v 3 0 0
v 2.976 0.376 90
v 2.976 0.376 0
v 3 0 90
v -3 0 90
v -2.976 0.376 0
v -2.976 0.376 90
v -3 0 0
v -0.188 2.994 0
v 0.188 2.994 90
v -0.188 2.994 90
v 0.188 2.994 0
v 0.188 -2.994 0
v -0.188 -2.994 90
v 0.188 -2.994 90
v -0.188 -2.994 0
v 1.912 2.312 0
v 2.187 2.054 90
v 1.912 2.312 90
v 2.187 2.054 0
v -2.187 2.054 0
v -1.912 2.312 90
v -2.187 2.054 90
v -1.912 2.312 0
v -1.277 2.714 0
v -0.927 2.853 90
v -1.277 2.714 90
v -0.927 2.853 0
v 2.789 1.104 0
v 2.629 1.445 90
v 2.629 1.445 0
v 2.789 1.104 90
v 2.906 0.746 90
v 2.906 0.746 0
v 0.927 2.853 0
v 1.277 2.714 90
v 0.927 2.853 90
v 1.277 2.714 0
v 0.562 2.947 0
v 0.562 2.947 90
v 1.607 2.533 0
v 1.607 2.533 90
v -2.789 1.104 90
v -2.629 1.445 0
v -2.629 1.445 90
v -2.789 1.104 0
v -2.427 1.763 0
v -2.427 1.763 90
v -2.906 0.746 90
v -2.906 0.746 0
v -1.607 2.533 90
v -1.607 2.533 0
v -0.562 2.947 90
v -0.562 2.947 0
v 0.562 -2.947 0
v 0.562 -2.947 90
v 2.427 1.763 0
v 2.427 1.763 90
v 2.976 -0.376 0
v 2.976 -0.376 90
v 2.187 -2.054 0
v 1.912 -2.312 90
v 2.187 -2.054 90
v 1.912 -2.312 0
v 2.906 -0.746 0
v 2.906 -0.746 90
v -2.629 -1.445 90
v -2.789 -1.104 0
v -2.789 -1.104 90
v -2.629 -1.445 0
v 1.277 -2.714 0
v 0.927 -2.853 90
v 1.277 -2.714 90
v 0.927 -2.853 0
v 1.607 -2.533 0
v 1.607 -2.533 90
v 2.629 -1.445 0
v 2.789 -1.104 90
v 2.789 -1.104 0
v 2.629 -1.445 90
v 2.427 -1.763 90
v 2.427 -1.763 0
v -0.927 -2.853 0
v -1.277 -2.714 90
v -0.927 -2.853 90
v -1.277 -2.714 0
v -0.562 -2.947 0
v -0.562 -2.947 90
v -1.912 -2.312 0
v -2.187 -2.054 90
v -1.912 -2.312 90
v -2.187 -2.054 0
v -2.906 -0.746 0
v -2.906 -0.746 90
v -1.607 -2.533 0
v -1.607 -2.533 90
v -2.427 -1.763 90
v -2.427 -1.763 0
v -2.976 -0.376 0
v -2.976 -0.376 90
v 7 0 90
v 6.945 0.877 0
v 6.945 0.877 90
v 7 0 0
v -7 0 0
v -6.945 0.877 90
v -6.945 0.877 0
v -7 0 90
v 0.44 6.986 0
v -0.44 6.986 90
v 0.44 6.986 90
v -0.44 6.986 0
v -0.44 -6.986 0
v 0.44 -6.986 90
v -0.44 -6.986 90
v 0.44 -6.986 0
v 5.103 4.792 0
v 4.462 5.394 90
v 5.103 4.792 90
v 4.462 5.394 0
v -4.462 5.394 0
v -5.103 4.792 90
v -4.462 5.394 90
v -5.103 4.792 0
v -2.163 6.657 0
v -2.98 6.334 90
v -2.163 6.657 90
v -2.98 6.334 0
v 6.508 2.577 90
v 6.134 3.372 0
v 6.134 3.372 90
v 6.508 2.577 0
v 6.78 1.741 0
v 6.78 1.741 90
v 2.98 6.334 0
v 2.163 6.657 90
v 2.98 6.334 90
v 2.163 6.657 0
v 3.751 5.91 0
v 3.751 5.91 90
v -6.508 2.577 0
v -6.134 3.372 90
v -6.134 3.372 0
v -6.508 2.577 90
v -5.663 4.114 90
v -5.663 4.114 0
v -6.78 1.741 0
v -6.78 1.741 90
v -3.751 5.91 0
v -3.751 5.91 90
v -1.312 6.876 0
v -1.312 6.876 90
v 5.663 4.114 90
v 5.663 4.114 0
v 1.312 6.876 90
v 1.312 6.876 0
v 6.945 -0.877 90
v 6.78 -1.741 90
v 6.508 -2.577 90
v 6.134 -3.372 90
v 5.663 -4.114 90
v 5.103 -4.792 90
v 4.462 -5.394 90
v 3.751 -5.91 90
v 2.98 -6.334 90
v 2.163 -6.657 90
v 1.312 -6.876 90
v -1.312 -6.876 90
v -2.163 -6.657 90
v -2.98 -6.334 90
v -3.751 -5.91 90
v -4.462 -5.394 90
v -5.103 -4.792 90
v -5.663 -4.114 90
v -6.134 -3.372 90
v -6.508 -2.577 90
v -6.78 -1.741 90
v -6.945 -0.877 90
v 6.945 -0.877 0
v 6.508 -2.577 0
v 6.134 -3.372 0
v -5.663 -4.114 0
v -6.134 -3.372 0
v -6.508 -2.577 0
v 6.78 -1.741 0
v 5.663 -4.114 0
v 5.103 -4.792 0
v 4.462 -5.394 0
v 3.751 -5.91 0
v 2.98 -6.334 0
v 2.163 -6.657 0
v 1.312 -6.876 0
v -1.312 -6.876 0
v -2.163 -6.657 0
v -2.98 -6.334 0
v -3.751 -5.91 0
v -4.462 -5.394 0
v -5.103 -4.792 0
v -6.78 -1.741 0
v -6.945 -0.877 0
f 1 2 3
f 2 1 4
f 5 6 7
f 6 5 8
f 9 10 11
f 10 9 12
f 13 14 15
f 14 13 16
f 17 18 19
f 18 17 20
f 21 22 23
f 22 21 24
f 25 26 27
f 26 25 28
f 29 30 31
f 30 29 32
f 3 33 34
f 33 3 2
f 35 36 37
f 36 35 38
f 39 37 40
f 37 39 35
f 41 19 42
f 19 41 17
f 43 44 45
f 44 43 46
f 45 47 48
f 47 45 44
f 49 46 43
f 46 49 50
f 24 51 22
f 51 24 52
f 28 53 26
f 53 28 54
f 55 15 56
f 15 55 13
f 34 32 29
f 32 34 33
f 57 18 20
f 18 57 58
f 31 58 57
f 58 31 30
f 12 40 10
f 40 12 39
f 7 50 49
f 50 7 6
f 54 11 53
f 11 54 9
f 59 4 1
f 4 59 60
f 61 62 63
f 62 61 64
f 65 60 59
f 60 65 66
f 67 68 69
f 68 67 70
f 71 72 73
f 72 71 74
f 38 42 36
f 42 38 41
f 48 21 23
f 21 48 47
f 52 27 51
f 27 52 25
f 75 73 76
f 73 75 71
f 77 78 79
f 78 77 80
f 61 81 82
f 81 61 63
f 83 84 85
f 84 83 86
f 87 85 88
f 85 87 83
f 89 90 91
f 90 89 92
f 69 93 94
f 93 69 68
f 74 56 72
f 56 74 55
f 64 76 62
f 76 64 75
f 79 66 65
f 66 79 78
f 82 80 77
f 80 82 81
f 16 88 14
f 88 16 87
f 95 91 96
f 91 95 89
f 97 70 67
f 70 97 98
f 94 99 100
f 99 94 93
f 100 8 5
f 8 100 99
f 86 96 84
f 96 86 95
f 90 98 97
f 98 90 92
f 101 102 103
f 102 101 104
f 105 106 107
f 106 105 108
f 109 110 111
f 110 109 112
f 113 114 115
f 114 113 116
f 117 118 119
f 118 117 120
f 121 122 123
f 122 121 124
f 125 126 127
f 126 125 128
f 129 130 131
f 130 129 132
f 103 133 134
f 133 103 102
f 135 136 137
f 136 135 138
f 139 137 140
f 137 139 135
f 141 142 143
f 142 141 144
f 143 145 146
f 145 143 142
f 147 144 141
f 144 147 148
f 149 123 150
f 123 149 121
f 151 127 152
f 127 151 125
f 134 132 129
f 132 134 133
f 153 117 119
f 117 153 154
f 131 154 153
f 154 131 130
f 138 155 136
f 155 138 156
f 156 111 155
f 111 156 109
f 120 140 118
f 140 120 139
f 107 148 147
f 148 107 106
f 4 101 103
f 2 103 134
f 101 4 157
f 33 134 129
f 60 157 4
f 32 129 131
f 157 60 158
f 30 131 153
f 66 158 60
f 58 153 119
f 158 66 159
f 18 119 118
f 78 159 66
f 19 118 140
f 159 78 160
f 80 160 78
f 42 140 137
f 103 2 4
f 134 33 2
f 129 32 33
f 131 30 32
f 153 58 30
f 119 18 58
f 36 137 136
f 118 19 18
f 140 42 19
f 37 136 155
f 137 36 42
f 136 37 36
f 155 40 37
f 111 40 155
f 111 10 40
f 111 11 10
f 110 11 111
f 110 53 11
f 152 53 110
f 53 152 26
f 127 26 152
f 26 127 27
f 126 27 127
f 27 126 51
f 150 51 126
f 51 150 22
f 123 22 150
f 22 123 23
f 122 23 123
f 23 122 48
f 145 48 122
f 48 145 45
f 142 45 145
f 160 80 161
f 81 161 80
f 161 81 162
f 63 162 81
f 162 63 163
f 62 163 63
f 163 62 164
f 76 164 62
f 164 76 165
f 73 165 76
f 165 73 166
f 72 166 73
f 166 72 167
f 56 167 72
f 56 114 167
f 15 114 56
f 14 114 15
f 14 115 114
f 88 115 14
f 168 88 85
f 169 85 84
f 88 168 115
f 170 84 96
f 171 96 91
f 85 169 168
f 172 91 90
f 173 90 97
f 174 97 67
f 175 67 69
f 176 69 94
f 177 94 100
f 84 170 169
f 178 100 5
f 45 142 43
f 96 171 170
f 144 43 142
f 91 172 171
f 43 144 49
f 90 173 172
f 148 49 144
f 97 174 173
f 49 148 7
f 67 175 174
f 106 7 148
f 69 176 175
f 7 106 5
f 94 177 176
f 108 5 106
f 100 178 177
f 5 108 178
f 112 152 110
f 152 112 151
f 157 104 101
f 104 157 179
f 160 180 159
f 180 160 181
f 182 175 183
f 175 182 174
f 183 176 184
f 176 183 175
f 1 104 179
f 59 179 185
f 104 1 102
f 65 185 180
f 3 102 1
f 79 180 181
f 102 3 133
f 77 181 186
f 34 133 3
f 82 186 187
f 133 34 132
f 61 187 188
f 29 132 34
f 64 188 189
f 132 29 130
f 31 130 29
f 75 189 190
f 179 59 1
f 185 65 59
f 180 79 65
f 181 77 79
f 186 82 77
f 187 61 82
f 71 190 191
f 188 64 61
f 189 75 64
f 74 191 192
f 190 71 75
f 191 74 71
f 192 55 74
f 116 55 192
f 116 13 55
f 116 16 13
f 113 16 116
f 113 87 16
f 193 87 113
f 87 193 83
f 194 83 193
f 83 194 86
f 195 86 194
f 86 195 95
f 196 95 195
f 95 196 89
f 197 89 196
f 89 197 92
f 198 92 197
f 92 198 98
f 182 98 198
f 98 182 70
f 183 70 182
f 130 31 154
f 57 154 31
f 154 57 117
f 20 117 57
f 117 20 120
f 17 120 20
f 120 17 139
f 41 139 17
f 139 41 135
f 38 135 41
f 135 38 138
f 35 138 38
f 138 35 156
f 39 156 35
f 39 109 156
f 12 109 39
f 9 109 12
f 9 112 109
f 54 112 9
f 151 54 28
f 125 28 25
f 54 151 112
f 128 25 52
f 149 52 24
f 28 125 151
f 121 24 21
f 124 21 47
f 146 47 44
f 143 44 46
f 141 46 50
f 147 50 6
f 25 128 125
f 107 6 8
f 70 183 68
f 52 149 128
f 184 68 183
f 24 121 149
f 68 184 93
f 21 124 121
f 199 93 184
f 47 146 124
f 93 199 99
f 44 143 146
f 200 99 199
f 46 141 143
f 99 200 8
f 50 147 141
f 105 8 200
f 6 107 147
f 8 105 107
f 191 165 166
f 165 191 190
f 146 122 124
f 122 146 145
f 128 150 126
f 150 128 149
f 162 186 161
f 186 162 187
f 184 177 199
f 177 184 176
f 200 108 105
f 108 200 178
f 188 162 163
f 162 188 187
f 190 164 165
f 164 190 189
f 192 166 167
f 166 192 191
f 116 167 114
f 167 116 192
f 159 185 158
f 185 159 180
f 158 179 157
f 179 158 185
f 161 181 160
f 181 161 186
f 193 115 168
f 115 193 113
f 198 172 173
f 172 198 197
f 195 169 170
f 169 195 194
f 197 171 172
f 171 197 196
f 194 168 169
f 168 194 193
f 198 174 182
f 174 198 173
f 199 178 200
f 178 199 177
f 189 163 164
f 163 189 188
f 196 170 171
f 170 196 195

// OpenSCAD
$fn = 50;


difference() {
	union() {
		*color(alpha = 1.0000000000, c = "gray") {
			translate(v = [0, 7, 0]) {
				linear_extrude(height = 1) {
					text(font = "Arial:style=Bold", halign = "center", size = 4.5000000000, text = "COMMENT plate main", valign = "center");
				}
			}
		}
		cylinder(h = 90, r = 7.0000000000);
	}
	union() {
		*color(alpha = 1.0000000000, c = "gray") {
			translate(v = [0, 7, 0]) {
				linear_extrude(height = 1) {
					text(font = "Arial:style=Bold", halign = "center", size = 4.5000000000, text = "COMMENT holes main", valign = "center");
				}
			}
		}
		translate(v = [0, 0, -100]) {
			cylinder(h = 200, r = 3.0000000000);
		}
		translate(v = [0, 0, -100]) {
			cylinder(h = 200, r = 1.5000000000);
		}
	}
}
